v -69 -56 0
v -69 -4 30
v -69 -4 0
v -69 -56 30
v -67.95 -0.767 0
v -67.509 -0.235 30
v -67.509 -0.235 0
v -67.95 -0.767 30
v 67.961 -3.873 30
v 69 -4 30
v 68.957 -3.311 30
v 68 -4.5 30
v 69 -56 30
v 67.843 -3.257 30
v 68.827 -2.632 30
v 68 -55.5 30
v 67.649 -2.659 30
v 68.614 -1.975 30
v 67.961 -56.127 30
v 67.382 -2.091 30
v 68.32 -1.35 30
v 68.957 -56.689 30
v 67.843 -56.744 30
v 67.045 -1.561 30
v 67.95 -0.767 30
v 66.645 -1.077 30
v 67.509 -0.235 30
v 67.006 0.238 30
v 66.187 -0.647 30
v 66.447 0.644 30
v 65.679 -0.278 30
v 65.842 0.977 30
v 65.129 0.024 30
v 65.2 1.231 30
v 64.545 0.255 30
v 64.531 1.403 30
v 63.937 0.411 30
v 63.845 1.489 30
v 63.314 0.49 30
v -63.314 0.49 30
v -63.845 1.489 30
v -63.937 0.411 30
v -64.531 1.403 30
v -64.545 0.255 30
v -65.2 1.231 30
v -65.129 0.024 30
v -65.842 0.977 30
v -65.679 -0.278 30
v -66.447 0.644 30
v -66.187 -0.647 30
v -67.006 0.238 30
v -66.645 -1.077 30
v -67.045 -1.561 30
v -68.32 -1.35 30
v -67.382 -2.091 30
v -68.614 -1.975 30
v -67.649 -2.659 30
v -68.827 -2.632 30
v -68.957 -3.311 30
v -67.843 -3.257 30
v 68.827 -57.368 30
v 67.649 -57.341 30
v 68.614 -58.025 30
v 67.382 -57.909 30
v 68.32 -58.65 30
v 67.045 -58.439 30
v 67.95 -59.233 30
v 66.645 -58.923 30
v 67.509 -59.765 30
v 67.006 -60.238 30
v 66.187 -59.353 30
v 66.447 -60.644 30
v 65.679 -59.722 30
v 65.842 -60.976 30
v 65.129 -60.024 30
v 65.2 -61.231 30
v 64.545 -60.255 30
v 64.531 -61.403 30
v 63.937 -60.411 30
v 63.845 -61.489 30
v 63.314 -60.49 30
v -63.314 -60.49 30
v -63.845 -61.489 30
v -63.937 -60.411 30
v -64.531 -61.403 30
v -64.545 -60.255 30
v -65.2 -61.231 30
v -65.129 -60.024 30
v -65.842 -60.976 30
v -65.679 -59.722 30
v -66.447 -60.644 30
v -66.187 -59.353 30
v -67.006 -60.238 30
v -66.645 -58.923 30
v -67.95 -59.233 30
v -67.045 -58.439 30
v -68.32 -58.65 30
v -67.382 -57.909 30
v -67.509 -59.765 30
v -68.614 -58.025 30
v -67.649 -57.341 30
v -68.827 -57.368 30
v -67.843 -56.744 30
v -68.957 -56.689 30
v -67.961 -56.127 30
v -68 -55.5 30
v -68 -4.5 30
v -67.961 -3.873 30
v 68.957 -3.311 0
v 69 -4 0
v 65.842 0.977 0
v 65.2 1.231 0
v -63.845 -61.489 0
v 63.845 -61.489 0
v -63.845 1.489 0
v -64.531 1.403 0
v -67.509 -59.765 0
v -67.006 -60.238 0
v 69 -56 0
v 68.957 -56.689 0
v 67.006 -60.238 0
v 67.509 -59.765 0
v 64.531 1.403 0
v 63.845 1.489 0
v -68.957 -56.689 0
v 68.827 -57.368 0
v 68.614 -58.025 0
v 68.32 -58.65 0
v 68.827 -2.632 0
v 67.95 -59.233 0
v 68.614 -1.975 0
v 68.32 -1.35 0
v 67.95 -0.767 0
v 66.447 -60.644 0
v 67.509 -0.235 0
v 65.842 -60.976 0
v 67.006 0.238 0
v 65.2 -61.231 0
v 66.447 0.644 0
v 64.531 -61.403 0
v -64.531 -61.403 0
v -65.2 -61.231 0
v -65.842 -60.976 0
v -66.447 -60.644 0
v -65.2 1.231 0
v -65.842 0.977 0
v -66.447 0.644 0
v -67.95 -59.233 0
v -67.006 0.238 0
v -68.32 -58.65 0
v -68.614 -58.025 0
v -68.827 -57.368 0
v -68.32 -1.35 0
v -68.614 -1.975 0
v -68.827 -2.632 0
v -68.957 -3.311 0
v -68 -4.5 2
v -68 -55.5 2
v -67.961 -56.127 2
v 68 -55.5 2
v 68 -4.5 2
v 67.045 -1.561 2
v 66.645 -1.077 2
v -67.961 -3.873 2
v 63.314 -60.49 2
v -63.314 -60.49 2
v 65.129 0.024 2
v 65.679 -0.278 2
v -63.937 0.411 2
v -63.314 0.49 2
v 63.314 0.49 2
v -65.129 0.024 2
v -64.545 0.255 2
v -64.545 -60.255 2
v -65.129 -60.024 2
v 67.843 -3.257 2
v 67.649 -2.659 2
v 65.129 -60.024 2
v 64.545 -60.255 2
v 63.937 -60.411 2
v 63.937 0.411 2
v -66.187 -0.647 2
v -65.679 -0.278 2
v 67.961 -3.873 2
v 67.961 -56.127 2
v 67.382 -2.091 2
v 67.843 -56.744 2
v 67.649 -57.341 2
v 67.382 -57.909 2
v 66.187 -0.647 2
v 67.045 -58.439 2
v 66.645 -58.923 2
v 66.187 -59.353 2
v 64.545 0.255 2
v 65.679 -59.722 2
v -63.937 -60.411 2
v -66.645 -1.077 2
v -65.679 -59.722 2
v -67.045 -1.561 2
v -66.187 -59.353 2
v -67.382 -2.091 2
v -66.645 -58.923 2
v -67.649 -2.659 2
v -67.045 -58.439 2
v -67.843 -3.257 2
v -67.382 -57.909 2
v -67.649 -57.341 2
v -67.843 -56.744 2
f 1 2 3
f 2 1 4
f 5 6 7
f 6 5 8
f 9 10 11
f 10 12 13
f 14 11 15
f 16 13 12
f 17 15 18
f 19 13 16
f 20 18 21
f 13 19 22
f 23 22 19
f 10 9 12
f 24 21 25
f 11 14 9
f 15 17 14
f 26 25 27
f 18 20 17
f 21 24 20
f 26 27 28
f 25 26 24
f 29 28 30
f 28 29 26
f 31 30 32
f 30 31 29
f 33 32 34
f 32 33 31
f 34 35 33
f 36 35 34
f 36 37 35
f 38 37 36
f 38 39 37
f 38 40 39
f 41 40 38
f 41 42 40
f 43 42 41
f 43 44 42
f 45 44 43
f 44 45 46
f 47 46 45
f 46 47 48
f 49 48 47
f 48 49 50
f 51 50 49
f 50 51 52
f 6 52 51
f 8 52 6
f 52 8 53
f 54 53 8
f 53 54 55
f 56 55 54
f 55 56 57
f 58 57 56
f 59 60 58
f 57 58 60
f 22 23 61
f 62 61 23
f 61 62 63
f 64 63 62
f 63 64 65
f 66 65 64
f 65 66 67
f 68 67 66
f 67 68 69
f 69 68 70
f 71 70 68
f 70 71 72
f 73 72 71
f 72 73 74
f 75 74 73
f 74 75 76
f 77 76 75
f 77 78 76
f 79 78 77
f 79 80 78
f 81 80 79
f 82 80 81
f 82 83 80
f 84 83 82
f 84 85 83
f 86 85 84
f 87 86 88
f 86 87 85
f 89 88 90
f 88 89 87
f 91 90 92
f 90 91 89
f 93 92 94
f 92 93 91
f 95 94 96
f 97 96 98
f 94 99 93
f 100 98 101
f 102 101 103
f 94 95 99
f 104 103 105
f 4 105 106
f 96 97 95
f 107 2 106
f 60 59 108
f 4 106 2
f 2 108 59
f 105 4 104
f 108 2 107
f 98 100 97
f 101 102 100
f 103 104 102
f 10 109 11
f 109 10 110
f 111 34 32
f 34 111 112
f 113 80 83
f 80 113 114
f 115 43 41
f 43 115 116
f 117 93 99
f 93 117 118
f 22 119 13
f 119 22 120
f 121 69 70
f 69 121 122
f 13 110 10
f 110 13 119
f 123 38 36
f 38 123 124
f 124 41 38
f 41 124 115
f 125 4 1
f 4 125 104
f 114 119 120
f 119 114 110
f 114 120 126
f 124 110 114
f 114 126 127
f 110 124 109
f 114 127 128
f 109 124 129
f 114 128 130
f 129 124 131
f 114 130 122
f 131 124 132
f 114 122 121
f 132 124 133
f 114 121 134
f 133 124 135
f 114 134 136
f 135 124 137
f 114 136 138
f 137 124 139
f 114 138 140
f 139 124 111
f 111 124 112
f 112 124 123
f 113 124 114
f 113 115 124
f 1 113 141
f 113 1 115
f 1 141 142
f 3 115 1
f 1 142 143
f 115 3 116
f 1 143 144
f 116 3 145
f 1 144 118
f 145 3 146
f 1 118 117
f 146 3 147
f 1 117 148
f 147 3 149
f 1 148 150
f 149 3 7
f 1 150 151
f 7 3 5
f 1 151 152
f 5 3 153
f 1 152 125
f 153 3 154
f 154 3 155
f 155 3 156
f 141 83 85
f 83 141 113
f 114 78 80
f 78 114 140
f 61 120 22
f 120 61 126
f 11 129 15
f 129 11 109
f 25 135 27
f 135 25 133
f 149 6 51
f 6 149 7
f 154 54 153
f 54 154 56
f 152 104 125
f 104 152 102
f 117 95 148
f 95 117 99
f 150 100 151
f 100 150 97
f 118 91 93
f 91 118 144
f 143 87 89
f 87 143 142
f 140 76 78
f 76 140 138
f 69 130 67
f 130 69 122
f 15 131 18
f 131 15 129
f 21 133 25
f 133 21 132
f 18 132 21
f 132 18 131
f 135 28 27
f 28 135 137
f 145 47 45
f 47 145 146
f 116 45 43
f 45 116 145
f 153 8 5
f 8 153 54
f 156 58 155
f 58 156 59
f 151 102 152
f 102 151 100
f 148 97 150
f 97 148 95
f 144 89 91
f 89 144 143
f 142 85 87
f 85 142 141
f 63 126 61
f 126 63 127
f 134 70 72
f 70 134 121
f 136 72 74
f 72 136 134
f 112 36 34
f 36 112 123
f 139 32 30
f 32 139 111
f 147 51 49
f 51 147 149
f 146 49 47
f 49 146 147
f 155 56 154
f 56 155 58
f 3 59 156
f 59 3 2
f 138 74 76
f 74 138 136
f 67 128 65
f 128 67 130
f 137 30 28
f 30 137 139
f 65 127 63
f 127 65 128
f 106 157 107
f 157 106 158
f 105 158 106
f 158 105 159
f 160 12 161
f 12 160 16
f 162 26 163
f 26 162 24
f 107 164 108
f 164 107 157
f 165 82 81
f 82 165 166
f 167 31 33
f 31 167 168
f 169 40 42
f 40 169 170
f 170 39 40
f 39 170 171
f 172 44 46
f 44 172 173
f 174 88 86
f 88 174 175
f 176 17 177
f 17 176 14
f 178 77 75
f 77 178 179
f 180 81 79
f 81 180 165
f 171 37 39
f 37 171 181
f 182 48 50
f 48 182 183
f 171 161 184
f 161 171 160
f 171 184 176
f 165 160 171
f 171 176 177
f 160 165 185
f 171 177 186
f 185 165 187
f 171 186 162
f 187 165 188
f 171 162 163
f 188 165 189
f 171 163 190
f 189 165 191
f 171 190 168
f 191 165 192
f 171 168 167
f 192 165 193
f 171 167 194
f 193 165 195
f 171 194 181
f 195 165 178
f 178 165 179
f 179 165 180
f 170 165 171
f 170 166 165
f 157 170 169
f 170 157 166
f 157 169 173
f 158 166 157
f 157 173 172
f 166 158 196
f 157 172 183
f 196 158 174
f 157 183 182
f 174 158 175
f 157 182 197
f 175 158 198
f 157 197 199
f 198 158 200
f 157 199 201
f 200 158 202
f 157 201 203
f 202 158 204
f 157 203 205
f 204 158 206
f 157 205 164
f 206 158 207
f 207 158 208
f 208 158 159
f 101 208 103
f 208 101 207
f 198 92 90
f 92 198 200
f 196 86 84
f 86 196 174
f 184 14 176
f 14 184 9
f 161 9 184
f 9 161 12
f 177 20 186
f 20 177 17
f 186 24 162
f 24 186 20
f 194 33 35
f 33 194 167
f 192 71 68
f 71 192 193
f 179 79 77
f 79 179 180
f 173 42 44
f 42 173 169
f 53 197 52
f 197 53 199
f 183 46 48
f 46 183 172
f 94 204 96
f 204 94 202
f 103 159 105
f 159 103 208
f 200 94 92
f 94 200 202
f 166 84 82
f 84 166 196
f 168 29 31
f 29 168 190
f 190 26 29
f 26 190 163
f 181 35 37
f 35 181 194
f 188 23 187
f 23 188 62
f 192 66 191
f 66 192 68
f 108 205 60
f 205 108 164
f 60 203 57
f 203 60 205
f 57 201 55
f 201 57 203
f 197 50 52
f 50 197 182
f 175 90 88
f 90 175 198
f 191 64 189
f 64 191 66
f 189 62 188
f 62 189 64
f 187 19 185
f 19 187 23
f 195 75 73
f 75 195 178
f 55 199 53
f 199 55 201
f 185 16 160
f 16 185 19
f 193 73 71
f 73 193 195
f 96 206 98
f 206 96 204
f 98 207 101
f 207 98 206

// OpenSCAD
$fn = 50;


difference() {
	union() {
		translate(v = [0, -30.0000000000, 0]) {
			hull() {
				translate(v = [-63.5000000000, 26.0000000000, 0]) {
					cylinder(h = 30, r = 5.5000000000);
				}
				translate(v = [63.5000000000, 26.0000000000, 0]) {
					cylinder(h = 30, r = 5.5000000000);
				}
				translate(v = [-63.5000000000, -26.0000000000, 0]) {
					cylinder(h = 30, r = 5.5000000000);
				}
				translate(v = [63.5000000000, -26.0000000000, 0]) {
					cylinder(h = 30, r = 5.5000000000);
				}
			}
		}
	}
	union() {
		translate(v = [0, -30.0000000000, 2]) {
			hull() {
				translate(v = [-63.0000000000, 25.5000000000, 0]) {
					cylinder(h = 60, r = 5);
				}
				translate(v = [63.0000000000, 25.5000000000, 0]) {
					cylinder(h = 60, r = 5);
				}
				translate(v = [-63.0000000000, -25.5000000000, 0]) {
					cylinder(h = 60, r = 5);
				}
				translate(v = [63.0000000000, -25.5000000000, 0]) {
					cylinder(h = 60, r = 5);
				}
			}
		}
	}
}
